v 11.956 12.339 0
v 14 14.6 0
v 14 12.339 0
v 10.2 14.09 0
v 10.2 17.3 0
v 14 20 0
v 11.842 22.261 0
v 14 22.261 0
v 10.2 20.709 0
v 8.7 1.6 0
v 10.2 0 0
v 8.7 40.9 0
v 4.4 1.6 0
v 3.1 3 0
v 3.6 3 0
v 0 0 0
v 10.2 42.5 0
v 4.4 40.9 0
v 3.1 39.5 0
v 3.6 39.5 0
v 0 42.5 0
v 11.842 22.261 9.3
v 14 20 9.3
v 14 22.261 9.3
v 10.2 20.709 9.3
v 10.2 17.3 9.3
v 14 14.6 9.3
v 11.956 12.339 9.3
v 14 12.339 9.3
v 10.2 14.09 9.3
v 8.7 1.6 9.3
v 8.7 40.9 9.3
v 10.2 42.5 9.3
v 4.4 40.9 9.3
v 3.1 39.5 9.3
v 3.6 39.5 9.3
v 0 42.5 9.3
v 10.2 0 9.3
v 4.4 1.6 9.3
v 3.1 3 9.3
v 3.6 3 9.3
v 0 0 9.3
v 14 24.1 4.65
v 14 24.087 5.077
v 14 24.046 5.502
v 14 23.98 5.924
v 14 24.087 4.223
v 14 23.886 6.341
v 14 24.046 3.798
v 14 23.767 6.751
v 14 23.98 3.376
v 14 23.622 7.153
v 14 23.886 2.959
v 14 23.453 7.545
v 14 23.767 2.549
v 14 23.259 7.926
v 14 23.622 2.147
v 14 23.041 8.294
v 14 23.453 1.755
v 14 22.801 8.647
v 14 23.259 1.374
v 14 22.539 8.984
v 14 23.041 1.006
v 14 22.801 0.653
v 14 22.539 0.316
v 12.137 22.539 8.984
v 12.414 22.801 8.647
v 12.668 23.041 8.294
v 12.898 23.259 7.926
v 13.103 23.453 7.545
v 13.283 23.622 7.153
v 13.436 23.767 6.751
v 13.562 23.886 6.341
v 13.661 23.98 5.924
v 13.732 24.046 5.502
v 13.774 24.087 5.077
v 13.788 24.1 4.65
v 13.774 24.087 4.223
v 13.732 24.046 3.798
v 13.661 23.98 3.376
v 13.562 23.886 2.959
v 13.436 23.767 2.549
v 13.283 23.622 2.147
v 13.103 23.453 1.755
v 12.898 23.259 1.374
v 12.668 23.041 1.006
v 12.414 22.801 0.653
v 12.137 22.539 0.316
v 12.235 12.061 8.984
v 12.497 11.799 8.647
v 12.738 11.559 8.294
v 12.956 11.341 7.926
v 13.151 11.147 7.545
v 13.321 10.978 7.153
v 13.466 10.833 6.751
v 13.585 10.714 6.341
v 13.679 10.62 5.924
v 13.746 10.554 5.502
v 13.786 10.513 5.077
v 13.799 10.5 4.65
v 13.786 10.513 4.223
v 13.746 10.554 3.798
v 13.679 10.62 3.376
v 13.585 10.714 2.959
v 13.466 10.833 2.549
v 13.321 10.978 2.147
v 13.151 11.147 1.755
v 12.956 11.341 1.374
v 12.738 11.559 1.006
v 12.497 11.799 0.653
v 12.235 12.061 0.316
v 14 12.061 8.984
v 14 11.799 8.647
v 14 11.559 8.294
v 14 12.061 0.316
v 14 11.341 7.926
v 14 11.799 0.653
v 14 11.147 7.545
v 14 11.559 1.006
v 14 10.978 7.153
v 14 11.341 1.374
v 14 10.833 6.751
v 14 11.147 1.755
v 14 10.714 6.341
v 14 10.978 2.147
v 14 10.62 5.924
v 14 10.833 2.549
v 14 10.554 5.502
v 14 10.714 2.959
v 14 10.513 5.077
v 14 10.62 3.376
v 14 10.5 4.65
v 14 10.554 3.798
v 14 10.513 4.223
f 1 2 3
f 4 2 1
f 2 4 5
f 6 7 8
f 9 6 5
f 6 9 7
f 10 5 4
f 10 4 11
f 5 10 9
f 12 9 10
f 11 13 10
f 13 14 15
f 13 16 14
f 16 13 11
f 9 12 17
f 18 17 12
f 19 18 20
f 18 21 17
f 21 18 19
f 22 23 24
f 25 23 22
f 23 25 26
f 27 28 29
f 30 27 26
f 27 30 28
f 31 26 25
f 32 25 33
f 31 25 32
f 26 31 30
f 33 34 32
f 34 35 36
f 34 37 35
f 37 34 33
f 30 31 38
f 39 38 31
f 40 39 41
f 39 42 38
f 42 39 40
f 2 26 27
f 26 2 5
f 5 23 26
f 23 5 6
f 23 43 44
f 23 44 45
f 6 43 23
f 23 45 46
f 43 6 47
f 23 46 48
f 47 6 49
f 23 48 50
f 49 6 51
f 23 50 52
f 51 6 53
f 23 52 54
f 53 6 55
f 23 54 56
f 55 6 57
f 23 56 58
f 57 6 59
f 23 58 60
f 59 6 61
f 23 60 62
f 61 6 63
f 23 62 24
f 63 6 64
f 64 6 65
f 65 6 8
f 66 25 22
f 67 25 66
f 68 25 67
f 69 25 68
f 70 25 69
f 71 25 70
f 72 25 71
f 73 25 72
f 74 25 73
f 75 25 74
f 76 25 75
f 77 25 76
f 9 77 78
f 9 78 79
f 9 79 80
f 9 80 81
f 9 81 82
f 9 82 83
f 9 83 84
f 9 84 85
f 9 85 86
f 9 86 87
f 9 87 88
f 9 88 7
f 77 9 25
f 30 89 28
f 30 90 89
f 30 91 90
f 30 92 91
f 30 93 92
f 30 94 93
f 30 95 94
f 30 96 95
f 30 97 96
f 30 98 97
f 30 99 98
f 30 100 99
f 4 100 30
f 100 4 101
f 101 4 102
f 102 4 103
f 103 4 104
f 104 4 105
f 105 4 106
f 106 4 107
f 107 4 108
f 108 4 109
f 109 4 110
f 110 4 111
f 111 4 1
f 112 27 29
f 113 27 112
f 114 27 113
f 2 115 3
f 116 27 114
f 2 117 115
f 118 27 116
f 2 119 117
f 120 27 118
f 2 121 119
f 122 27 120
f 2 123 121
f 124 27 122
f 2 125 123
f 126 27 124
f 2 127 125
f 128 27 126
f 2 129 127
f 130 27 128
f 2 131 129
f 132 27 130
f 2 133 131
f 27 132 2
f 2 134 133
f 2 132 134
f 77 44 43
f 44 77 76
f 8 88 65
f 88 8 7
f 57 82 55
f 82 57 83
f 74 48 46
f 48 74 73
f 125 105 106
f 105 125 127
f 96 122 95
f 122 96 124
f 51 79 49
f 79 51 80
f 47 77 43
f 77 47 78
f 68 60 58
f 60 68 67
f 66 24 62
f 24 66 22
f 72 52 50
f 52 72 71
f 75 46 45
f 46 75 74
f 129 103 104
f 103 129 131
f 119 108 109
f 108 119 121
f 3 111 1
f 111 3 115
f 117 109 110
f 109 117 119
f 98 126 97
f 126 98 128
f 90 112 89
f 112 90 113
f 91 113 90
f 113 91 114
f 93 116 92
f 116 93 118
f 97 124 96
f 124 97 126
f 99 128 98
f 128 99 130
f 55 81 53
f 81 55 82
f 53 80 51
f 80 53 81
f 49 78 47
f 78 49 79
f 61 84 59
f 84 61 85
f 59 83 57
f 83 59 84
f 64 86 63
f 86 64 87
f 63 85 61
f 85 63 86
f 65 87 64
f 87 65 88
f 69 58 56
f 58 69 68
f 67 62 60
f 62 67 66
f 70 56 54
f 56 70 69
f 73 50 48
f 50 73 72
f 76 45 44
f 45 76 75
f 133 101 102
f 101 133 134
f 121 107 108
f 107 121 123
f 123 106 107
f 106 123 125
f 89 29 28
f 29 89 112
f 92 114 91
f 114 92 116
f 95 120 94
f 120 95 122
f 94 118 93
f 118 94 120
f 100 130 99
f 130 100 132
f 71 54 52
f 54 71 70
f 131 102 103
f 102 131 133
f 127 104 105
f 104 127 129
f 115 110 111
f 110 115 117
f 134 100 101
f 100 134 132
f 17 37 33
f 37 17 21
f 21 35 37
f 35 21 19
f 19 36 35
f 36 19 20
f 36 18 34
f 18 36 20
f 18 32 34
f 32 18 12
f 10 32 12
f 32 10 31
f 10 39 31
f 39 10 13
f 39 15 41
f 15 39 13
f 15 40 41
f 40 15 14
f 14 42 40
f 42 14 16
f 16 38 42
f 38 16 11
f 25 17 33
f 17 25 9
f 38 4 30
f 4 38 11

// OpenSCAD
// valence clip
$fn = 100;
FUDGE = 0.01;

clip_height = 9.3;
hold_height = 9.3;

module innerHold() {
  intersection() {
    linear_extrude(hold_height) {
      polygon(points=[[-FUDGE, 0],
                      [3.8, -3.8],
                      [3.8, 0.5],
                      [0, 3.2],
                      [3.8, 5.9],
                      [3.8, 10.2],
                      [-FUDGE, 6.6],
                      [-FUDGE, 0.0]]);
    }
    translate([-(2*FUDGE), 3.2, hold_height/2])
      rotate([0, 90, 0])
        cylinder(hold_height + 1, d=13.6);
  }
}

module valenceClip() {
  polygon(points=[[0, 0],
                  [10.2, 0],
                  [10.2, 42.5],
                  [0, 42.5],
                  [3.1, 39.5],
                  [3.6, 39.5],
                  [4.4, 40.9],
                  [8.7, 40.9],
                  [8.7, 1.6],
                  [4.4, 1.6],
                  [3.6, 3.0],
                  [3.1, 3.0],
                  [3.1, 3.0],
                  [0, 0]]);
}

union() {
  linear_extrude(clip_height) {
    valenceClip();
  }
  translate([10.2, 14.1, 0])
    innerHold();
}
